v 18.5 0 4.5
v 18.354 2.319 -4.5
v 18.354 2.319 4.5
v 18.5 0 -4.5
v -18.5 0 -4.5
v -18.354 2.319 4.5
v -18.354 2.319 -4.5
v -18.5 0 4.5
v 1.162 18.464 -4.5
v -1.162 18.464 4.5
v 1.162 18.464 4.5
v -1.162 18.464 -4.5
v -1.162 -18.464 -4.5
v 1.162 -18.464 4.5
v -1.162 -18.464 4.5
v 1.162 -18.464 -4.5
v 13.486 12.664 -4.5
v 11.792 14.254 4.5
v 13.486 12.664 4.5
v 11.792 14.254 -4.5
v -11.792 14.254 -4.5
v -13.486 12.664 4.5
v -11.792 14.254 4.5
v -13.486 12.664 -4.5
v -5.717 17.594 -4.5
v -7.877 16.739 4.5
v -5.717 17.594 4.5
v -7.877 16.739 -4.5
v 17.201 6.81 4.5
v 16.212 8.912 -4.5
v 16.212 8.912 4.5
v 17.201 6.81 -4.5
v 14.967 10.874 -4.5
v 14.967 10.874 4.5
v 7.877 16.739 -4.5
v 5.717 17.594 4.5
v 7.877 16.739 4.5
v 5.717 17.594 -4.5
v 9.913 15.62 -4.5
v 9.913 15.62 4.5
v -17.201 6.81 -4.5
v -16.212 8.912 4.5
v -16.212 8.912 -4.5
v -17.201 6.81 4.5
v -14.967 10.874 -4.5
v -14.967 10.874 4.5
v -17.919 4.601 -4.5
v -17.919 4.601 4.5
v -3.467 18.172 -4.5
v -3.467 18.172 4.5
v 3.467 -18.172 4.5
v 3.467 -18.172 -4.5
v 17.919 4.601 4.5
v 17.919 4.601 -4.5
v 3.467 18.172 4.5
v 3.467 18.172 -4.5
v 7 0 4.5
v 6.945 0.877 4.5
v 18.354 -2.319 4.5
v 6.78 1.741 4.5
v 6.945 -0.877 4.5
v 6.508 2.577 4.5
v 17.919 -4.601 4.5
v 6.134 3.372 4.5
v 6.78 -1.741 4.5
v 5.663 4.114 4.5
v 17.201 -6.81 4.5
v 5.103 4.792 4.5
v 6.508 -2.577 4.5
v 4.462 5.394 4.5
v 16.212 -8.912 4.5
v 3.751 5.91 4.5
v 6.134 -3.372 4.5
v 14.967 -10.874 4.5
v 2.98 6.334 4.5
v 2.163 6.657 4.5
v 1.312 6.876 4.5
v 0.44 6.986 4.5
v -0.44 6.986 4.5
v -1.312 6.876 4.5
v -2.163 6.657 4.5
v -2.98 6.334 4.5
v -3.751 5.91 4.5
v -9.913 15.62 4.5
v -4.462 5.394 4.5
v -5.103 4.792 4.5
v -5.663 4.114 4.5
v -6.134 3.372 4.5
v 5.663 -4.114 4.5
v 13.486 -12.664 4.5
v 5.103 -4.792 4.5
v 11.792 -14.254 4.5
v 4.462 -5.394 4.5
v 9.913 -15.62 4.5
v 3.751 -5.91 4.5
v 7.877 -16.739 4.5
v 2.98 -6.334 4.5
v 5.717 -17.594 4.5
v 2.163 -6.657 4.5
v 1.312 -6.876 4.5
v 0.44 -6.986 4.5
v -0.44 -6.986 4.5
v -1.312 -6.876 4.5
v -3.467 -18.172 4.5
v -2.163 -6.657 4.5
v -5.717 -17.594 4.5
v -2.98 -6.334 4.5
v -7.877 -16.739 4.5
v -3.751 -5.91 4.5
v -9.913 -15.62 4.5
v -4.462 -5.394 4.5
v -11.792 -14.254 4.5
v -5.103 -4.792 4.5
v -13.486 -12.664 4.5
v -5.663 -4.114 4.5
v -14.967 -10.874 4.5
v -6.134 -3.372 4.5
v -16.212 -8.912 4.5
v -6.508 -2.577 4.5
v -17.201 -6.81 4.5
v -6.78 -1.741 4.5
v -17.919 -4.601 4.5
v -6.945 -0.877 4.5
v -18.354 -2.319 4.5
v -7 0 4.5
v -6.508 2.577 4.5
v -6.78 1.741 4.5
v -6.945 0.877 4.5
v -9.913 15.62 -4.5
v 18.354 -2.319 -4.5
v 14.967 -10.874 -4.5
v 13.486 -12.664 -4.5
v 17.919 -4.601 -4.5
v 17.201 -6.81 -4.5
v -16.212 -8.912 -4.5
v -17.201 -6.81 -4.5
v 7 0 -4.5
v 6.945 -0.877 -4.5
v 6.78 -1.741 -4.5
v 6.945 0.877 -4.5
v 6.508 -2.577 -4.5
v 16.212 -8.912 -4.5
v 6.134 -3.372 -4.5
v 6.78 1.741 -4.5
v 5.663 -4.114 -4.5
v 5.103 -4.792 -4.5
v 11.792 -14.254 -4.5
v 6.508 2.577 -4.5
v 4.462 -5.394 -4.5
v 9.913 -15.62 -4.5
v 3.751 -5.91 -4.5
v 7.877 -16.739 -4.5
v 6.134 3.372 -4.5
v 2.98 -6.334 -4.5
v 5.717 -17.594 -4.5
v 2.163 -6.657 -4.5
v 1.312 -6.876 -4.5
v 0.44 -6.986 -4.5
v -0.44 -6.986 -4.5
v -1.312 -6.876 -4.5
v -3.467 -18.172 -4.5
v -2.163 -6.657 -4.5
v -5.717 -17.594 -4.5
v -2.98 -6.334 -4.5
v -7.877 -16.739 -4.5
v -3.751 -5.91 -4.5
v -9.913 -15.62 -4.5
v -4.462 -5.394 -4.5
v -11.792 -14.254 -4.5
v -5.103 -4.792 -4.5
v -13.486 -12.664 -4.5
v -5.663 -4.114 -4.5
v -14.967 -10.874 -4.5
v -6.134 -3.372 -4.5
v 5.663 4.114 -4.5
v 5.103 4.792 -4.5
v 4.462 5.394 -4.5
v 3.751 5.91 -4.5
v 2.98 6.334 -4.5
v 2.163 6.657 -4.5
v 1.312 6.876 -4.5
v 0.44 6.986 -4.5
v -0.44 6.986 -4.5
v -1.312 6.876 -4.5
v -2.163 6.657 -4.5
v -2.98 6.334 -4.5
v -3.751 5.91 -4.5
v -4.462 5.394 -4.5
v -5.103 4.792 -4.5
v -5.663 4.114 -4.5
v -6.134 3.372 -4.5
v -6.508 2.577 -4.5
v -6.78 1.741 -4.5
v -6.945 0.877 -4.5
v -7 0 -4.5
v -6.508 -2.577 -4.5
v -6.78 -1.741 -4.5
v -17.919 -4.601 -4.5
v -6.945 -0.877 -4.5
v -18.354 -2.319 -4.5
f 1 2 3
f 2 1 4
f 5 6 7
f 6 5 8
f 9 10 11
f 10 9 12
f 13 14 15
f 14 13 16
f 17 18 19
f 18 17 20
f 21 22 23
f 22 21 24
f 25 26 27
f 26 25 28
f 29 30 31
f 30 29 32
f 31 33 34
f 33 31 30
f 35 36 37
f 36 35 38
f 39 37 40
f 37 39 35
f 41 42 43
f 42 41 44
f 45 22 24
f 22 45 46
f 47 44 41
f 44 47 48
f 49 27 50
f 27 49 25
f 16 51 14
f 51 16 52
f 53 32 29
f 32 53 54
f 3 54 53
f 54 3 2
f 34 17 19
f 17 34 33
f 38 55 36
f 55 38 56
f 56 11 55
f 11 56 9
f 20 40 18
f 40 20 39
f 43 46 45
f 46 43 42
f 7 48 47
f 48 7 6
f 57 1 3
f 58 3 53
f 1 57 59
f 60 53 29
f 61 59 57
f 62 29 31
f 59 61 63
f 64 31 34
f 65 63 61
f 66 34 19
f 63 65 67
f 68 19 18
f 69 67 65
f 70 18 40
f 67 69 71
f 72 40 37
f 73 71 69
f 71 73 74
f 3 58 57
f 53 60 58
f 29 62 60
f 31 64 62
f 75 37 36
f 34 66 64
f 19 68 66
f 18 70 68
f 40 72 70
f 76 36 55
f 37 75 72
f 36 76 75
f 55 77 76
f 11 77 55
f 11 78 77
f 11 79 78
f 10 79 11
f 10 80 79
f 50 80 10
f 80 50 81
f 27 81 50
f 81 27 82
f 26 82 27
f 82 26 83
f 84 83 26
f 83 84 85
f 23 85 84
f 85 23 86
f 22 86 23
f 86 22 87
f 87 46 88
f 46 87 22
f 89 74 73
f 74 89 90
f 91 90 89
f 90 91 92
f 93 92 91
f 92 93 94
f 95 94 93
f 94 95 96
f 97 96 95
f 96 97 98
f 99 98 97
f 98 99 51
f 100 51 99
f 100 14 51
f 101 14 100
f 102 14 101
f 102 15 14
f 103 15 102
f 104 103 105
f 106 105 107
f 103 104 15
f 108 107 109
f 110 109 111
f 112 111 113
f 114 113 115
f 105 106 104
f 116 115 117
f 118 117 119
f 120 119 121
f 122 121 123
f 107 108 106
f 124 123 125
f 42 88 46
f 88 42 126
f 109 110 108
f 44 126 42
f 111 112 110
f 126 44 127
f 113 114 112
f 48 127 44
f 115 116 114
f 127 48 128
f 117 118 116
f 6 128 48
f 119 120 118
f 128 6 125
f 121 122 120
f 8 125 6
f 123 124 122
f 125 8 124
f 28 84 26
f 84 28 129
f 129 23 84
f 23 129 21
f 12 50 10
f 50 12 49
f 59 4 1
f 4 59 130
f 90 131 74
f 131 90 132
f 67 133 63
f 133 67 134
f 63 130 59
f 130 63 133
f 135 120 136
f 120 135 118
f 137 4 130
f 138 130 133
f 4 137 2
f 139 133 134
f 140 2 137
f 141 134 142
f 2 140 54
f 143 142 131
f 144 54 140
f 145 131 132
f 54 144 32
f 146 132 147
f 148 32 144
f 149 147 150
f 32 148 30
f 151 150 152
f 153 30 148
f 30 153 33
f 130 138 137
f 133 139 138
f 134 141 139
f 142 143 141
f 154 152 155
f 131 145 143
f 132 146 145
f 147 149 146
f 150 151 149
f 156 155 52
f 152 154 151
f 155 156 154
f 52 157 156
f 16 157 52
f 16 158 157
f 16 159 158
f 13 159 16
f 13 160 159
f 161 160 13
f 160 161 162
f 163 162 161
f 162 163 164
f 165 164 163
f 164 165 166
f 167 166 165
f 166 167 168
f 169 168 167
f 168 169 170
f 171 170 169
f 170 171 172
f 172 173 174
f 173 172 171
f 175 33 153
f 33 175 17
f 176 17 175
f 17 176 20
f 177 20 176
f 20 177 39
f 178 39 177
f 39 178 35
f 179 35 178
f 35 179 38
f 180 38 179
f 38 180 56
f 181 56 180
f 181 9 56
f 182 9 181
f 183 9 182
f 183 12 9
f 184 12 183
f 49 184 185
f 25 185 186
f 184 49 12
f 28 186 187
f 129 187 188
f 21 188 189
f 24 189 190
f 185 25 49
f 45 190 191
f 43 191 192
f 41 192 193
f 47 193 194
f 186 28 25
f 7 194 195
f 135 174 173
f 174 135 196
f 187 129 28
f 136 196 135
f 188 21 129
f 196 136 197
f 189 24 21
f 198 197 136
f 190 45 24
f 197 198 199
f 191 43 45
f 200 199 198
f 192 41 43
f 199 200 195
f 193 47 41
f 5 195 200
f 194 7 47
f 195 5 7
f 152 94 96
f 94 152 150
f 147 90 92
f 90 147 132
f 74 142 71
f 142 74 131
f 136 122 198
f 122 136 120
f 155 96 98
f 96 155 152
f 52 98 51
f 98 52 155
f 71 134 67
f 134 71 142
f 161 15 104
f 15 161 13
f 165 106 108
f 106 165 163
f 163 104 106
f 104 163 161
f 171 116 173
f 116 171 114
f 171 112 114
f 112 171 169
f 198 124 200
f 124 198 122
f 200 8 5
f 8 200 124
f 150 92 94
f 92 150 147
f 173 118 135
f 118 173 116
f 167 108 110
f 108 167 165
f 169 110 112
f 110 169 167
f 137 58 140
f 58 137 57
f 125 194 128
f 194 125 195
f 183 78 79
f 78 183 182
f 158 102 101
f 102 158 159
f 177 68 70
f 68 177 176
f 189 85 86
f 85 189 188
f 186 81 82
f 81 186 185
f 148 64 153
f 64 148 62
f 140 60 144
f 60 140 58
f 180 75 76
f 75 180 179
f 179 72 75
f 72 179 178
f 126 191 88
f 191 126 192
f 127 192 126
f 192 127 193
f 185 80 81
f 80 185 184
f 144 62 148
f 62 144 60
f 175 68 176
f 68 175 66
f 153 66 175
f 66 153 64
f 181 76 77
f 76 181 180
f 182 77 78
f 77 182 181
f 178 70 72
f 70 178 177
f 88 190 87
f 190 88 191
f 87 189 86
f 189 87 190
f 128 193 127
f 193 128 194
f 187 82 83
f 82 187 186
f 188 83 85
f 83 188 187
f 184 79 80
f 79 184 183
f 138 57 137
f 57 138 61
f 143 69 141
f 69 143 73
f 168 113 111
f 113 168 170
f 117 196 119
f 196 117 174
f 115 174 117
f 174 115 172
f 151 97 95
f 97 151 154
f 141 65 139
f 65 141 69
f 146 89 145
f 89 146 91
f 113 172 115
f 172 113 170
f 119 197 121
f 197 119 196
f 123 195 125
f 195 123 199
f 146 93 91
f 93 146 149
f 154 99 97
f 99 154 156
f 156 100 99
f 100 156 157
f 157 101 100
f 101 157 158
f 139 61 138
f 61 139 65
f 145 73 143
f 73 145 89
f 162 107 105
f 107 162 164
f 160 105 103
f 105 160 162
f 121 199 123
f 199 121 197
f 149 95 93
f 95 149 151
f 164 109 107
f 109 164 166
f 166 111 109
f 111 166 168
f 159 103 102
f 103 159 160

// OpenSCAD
$fn = 50;


difference() {
	union() {
		translate(v = [0, 0, -4.5000000000]) {
			cylinder(h = 9, r = 18.5000000000);
		}
	}
	union() {
		translate(v = [0, 0, -100.0000000000]) {
			cylinder(h = 200, r = 7);
		}
	}
}
